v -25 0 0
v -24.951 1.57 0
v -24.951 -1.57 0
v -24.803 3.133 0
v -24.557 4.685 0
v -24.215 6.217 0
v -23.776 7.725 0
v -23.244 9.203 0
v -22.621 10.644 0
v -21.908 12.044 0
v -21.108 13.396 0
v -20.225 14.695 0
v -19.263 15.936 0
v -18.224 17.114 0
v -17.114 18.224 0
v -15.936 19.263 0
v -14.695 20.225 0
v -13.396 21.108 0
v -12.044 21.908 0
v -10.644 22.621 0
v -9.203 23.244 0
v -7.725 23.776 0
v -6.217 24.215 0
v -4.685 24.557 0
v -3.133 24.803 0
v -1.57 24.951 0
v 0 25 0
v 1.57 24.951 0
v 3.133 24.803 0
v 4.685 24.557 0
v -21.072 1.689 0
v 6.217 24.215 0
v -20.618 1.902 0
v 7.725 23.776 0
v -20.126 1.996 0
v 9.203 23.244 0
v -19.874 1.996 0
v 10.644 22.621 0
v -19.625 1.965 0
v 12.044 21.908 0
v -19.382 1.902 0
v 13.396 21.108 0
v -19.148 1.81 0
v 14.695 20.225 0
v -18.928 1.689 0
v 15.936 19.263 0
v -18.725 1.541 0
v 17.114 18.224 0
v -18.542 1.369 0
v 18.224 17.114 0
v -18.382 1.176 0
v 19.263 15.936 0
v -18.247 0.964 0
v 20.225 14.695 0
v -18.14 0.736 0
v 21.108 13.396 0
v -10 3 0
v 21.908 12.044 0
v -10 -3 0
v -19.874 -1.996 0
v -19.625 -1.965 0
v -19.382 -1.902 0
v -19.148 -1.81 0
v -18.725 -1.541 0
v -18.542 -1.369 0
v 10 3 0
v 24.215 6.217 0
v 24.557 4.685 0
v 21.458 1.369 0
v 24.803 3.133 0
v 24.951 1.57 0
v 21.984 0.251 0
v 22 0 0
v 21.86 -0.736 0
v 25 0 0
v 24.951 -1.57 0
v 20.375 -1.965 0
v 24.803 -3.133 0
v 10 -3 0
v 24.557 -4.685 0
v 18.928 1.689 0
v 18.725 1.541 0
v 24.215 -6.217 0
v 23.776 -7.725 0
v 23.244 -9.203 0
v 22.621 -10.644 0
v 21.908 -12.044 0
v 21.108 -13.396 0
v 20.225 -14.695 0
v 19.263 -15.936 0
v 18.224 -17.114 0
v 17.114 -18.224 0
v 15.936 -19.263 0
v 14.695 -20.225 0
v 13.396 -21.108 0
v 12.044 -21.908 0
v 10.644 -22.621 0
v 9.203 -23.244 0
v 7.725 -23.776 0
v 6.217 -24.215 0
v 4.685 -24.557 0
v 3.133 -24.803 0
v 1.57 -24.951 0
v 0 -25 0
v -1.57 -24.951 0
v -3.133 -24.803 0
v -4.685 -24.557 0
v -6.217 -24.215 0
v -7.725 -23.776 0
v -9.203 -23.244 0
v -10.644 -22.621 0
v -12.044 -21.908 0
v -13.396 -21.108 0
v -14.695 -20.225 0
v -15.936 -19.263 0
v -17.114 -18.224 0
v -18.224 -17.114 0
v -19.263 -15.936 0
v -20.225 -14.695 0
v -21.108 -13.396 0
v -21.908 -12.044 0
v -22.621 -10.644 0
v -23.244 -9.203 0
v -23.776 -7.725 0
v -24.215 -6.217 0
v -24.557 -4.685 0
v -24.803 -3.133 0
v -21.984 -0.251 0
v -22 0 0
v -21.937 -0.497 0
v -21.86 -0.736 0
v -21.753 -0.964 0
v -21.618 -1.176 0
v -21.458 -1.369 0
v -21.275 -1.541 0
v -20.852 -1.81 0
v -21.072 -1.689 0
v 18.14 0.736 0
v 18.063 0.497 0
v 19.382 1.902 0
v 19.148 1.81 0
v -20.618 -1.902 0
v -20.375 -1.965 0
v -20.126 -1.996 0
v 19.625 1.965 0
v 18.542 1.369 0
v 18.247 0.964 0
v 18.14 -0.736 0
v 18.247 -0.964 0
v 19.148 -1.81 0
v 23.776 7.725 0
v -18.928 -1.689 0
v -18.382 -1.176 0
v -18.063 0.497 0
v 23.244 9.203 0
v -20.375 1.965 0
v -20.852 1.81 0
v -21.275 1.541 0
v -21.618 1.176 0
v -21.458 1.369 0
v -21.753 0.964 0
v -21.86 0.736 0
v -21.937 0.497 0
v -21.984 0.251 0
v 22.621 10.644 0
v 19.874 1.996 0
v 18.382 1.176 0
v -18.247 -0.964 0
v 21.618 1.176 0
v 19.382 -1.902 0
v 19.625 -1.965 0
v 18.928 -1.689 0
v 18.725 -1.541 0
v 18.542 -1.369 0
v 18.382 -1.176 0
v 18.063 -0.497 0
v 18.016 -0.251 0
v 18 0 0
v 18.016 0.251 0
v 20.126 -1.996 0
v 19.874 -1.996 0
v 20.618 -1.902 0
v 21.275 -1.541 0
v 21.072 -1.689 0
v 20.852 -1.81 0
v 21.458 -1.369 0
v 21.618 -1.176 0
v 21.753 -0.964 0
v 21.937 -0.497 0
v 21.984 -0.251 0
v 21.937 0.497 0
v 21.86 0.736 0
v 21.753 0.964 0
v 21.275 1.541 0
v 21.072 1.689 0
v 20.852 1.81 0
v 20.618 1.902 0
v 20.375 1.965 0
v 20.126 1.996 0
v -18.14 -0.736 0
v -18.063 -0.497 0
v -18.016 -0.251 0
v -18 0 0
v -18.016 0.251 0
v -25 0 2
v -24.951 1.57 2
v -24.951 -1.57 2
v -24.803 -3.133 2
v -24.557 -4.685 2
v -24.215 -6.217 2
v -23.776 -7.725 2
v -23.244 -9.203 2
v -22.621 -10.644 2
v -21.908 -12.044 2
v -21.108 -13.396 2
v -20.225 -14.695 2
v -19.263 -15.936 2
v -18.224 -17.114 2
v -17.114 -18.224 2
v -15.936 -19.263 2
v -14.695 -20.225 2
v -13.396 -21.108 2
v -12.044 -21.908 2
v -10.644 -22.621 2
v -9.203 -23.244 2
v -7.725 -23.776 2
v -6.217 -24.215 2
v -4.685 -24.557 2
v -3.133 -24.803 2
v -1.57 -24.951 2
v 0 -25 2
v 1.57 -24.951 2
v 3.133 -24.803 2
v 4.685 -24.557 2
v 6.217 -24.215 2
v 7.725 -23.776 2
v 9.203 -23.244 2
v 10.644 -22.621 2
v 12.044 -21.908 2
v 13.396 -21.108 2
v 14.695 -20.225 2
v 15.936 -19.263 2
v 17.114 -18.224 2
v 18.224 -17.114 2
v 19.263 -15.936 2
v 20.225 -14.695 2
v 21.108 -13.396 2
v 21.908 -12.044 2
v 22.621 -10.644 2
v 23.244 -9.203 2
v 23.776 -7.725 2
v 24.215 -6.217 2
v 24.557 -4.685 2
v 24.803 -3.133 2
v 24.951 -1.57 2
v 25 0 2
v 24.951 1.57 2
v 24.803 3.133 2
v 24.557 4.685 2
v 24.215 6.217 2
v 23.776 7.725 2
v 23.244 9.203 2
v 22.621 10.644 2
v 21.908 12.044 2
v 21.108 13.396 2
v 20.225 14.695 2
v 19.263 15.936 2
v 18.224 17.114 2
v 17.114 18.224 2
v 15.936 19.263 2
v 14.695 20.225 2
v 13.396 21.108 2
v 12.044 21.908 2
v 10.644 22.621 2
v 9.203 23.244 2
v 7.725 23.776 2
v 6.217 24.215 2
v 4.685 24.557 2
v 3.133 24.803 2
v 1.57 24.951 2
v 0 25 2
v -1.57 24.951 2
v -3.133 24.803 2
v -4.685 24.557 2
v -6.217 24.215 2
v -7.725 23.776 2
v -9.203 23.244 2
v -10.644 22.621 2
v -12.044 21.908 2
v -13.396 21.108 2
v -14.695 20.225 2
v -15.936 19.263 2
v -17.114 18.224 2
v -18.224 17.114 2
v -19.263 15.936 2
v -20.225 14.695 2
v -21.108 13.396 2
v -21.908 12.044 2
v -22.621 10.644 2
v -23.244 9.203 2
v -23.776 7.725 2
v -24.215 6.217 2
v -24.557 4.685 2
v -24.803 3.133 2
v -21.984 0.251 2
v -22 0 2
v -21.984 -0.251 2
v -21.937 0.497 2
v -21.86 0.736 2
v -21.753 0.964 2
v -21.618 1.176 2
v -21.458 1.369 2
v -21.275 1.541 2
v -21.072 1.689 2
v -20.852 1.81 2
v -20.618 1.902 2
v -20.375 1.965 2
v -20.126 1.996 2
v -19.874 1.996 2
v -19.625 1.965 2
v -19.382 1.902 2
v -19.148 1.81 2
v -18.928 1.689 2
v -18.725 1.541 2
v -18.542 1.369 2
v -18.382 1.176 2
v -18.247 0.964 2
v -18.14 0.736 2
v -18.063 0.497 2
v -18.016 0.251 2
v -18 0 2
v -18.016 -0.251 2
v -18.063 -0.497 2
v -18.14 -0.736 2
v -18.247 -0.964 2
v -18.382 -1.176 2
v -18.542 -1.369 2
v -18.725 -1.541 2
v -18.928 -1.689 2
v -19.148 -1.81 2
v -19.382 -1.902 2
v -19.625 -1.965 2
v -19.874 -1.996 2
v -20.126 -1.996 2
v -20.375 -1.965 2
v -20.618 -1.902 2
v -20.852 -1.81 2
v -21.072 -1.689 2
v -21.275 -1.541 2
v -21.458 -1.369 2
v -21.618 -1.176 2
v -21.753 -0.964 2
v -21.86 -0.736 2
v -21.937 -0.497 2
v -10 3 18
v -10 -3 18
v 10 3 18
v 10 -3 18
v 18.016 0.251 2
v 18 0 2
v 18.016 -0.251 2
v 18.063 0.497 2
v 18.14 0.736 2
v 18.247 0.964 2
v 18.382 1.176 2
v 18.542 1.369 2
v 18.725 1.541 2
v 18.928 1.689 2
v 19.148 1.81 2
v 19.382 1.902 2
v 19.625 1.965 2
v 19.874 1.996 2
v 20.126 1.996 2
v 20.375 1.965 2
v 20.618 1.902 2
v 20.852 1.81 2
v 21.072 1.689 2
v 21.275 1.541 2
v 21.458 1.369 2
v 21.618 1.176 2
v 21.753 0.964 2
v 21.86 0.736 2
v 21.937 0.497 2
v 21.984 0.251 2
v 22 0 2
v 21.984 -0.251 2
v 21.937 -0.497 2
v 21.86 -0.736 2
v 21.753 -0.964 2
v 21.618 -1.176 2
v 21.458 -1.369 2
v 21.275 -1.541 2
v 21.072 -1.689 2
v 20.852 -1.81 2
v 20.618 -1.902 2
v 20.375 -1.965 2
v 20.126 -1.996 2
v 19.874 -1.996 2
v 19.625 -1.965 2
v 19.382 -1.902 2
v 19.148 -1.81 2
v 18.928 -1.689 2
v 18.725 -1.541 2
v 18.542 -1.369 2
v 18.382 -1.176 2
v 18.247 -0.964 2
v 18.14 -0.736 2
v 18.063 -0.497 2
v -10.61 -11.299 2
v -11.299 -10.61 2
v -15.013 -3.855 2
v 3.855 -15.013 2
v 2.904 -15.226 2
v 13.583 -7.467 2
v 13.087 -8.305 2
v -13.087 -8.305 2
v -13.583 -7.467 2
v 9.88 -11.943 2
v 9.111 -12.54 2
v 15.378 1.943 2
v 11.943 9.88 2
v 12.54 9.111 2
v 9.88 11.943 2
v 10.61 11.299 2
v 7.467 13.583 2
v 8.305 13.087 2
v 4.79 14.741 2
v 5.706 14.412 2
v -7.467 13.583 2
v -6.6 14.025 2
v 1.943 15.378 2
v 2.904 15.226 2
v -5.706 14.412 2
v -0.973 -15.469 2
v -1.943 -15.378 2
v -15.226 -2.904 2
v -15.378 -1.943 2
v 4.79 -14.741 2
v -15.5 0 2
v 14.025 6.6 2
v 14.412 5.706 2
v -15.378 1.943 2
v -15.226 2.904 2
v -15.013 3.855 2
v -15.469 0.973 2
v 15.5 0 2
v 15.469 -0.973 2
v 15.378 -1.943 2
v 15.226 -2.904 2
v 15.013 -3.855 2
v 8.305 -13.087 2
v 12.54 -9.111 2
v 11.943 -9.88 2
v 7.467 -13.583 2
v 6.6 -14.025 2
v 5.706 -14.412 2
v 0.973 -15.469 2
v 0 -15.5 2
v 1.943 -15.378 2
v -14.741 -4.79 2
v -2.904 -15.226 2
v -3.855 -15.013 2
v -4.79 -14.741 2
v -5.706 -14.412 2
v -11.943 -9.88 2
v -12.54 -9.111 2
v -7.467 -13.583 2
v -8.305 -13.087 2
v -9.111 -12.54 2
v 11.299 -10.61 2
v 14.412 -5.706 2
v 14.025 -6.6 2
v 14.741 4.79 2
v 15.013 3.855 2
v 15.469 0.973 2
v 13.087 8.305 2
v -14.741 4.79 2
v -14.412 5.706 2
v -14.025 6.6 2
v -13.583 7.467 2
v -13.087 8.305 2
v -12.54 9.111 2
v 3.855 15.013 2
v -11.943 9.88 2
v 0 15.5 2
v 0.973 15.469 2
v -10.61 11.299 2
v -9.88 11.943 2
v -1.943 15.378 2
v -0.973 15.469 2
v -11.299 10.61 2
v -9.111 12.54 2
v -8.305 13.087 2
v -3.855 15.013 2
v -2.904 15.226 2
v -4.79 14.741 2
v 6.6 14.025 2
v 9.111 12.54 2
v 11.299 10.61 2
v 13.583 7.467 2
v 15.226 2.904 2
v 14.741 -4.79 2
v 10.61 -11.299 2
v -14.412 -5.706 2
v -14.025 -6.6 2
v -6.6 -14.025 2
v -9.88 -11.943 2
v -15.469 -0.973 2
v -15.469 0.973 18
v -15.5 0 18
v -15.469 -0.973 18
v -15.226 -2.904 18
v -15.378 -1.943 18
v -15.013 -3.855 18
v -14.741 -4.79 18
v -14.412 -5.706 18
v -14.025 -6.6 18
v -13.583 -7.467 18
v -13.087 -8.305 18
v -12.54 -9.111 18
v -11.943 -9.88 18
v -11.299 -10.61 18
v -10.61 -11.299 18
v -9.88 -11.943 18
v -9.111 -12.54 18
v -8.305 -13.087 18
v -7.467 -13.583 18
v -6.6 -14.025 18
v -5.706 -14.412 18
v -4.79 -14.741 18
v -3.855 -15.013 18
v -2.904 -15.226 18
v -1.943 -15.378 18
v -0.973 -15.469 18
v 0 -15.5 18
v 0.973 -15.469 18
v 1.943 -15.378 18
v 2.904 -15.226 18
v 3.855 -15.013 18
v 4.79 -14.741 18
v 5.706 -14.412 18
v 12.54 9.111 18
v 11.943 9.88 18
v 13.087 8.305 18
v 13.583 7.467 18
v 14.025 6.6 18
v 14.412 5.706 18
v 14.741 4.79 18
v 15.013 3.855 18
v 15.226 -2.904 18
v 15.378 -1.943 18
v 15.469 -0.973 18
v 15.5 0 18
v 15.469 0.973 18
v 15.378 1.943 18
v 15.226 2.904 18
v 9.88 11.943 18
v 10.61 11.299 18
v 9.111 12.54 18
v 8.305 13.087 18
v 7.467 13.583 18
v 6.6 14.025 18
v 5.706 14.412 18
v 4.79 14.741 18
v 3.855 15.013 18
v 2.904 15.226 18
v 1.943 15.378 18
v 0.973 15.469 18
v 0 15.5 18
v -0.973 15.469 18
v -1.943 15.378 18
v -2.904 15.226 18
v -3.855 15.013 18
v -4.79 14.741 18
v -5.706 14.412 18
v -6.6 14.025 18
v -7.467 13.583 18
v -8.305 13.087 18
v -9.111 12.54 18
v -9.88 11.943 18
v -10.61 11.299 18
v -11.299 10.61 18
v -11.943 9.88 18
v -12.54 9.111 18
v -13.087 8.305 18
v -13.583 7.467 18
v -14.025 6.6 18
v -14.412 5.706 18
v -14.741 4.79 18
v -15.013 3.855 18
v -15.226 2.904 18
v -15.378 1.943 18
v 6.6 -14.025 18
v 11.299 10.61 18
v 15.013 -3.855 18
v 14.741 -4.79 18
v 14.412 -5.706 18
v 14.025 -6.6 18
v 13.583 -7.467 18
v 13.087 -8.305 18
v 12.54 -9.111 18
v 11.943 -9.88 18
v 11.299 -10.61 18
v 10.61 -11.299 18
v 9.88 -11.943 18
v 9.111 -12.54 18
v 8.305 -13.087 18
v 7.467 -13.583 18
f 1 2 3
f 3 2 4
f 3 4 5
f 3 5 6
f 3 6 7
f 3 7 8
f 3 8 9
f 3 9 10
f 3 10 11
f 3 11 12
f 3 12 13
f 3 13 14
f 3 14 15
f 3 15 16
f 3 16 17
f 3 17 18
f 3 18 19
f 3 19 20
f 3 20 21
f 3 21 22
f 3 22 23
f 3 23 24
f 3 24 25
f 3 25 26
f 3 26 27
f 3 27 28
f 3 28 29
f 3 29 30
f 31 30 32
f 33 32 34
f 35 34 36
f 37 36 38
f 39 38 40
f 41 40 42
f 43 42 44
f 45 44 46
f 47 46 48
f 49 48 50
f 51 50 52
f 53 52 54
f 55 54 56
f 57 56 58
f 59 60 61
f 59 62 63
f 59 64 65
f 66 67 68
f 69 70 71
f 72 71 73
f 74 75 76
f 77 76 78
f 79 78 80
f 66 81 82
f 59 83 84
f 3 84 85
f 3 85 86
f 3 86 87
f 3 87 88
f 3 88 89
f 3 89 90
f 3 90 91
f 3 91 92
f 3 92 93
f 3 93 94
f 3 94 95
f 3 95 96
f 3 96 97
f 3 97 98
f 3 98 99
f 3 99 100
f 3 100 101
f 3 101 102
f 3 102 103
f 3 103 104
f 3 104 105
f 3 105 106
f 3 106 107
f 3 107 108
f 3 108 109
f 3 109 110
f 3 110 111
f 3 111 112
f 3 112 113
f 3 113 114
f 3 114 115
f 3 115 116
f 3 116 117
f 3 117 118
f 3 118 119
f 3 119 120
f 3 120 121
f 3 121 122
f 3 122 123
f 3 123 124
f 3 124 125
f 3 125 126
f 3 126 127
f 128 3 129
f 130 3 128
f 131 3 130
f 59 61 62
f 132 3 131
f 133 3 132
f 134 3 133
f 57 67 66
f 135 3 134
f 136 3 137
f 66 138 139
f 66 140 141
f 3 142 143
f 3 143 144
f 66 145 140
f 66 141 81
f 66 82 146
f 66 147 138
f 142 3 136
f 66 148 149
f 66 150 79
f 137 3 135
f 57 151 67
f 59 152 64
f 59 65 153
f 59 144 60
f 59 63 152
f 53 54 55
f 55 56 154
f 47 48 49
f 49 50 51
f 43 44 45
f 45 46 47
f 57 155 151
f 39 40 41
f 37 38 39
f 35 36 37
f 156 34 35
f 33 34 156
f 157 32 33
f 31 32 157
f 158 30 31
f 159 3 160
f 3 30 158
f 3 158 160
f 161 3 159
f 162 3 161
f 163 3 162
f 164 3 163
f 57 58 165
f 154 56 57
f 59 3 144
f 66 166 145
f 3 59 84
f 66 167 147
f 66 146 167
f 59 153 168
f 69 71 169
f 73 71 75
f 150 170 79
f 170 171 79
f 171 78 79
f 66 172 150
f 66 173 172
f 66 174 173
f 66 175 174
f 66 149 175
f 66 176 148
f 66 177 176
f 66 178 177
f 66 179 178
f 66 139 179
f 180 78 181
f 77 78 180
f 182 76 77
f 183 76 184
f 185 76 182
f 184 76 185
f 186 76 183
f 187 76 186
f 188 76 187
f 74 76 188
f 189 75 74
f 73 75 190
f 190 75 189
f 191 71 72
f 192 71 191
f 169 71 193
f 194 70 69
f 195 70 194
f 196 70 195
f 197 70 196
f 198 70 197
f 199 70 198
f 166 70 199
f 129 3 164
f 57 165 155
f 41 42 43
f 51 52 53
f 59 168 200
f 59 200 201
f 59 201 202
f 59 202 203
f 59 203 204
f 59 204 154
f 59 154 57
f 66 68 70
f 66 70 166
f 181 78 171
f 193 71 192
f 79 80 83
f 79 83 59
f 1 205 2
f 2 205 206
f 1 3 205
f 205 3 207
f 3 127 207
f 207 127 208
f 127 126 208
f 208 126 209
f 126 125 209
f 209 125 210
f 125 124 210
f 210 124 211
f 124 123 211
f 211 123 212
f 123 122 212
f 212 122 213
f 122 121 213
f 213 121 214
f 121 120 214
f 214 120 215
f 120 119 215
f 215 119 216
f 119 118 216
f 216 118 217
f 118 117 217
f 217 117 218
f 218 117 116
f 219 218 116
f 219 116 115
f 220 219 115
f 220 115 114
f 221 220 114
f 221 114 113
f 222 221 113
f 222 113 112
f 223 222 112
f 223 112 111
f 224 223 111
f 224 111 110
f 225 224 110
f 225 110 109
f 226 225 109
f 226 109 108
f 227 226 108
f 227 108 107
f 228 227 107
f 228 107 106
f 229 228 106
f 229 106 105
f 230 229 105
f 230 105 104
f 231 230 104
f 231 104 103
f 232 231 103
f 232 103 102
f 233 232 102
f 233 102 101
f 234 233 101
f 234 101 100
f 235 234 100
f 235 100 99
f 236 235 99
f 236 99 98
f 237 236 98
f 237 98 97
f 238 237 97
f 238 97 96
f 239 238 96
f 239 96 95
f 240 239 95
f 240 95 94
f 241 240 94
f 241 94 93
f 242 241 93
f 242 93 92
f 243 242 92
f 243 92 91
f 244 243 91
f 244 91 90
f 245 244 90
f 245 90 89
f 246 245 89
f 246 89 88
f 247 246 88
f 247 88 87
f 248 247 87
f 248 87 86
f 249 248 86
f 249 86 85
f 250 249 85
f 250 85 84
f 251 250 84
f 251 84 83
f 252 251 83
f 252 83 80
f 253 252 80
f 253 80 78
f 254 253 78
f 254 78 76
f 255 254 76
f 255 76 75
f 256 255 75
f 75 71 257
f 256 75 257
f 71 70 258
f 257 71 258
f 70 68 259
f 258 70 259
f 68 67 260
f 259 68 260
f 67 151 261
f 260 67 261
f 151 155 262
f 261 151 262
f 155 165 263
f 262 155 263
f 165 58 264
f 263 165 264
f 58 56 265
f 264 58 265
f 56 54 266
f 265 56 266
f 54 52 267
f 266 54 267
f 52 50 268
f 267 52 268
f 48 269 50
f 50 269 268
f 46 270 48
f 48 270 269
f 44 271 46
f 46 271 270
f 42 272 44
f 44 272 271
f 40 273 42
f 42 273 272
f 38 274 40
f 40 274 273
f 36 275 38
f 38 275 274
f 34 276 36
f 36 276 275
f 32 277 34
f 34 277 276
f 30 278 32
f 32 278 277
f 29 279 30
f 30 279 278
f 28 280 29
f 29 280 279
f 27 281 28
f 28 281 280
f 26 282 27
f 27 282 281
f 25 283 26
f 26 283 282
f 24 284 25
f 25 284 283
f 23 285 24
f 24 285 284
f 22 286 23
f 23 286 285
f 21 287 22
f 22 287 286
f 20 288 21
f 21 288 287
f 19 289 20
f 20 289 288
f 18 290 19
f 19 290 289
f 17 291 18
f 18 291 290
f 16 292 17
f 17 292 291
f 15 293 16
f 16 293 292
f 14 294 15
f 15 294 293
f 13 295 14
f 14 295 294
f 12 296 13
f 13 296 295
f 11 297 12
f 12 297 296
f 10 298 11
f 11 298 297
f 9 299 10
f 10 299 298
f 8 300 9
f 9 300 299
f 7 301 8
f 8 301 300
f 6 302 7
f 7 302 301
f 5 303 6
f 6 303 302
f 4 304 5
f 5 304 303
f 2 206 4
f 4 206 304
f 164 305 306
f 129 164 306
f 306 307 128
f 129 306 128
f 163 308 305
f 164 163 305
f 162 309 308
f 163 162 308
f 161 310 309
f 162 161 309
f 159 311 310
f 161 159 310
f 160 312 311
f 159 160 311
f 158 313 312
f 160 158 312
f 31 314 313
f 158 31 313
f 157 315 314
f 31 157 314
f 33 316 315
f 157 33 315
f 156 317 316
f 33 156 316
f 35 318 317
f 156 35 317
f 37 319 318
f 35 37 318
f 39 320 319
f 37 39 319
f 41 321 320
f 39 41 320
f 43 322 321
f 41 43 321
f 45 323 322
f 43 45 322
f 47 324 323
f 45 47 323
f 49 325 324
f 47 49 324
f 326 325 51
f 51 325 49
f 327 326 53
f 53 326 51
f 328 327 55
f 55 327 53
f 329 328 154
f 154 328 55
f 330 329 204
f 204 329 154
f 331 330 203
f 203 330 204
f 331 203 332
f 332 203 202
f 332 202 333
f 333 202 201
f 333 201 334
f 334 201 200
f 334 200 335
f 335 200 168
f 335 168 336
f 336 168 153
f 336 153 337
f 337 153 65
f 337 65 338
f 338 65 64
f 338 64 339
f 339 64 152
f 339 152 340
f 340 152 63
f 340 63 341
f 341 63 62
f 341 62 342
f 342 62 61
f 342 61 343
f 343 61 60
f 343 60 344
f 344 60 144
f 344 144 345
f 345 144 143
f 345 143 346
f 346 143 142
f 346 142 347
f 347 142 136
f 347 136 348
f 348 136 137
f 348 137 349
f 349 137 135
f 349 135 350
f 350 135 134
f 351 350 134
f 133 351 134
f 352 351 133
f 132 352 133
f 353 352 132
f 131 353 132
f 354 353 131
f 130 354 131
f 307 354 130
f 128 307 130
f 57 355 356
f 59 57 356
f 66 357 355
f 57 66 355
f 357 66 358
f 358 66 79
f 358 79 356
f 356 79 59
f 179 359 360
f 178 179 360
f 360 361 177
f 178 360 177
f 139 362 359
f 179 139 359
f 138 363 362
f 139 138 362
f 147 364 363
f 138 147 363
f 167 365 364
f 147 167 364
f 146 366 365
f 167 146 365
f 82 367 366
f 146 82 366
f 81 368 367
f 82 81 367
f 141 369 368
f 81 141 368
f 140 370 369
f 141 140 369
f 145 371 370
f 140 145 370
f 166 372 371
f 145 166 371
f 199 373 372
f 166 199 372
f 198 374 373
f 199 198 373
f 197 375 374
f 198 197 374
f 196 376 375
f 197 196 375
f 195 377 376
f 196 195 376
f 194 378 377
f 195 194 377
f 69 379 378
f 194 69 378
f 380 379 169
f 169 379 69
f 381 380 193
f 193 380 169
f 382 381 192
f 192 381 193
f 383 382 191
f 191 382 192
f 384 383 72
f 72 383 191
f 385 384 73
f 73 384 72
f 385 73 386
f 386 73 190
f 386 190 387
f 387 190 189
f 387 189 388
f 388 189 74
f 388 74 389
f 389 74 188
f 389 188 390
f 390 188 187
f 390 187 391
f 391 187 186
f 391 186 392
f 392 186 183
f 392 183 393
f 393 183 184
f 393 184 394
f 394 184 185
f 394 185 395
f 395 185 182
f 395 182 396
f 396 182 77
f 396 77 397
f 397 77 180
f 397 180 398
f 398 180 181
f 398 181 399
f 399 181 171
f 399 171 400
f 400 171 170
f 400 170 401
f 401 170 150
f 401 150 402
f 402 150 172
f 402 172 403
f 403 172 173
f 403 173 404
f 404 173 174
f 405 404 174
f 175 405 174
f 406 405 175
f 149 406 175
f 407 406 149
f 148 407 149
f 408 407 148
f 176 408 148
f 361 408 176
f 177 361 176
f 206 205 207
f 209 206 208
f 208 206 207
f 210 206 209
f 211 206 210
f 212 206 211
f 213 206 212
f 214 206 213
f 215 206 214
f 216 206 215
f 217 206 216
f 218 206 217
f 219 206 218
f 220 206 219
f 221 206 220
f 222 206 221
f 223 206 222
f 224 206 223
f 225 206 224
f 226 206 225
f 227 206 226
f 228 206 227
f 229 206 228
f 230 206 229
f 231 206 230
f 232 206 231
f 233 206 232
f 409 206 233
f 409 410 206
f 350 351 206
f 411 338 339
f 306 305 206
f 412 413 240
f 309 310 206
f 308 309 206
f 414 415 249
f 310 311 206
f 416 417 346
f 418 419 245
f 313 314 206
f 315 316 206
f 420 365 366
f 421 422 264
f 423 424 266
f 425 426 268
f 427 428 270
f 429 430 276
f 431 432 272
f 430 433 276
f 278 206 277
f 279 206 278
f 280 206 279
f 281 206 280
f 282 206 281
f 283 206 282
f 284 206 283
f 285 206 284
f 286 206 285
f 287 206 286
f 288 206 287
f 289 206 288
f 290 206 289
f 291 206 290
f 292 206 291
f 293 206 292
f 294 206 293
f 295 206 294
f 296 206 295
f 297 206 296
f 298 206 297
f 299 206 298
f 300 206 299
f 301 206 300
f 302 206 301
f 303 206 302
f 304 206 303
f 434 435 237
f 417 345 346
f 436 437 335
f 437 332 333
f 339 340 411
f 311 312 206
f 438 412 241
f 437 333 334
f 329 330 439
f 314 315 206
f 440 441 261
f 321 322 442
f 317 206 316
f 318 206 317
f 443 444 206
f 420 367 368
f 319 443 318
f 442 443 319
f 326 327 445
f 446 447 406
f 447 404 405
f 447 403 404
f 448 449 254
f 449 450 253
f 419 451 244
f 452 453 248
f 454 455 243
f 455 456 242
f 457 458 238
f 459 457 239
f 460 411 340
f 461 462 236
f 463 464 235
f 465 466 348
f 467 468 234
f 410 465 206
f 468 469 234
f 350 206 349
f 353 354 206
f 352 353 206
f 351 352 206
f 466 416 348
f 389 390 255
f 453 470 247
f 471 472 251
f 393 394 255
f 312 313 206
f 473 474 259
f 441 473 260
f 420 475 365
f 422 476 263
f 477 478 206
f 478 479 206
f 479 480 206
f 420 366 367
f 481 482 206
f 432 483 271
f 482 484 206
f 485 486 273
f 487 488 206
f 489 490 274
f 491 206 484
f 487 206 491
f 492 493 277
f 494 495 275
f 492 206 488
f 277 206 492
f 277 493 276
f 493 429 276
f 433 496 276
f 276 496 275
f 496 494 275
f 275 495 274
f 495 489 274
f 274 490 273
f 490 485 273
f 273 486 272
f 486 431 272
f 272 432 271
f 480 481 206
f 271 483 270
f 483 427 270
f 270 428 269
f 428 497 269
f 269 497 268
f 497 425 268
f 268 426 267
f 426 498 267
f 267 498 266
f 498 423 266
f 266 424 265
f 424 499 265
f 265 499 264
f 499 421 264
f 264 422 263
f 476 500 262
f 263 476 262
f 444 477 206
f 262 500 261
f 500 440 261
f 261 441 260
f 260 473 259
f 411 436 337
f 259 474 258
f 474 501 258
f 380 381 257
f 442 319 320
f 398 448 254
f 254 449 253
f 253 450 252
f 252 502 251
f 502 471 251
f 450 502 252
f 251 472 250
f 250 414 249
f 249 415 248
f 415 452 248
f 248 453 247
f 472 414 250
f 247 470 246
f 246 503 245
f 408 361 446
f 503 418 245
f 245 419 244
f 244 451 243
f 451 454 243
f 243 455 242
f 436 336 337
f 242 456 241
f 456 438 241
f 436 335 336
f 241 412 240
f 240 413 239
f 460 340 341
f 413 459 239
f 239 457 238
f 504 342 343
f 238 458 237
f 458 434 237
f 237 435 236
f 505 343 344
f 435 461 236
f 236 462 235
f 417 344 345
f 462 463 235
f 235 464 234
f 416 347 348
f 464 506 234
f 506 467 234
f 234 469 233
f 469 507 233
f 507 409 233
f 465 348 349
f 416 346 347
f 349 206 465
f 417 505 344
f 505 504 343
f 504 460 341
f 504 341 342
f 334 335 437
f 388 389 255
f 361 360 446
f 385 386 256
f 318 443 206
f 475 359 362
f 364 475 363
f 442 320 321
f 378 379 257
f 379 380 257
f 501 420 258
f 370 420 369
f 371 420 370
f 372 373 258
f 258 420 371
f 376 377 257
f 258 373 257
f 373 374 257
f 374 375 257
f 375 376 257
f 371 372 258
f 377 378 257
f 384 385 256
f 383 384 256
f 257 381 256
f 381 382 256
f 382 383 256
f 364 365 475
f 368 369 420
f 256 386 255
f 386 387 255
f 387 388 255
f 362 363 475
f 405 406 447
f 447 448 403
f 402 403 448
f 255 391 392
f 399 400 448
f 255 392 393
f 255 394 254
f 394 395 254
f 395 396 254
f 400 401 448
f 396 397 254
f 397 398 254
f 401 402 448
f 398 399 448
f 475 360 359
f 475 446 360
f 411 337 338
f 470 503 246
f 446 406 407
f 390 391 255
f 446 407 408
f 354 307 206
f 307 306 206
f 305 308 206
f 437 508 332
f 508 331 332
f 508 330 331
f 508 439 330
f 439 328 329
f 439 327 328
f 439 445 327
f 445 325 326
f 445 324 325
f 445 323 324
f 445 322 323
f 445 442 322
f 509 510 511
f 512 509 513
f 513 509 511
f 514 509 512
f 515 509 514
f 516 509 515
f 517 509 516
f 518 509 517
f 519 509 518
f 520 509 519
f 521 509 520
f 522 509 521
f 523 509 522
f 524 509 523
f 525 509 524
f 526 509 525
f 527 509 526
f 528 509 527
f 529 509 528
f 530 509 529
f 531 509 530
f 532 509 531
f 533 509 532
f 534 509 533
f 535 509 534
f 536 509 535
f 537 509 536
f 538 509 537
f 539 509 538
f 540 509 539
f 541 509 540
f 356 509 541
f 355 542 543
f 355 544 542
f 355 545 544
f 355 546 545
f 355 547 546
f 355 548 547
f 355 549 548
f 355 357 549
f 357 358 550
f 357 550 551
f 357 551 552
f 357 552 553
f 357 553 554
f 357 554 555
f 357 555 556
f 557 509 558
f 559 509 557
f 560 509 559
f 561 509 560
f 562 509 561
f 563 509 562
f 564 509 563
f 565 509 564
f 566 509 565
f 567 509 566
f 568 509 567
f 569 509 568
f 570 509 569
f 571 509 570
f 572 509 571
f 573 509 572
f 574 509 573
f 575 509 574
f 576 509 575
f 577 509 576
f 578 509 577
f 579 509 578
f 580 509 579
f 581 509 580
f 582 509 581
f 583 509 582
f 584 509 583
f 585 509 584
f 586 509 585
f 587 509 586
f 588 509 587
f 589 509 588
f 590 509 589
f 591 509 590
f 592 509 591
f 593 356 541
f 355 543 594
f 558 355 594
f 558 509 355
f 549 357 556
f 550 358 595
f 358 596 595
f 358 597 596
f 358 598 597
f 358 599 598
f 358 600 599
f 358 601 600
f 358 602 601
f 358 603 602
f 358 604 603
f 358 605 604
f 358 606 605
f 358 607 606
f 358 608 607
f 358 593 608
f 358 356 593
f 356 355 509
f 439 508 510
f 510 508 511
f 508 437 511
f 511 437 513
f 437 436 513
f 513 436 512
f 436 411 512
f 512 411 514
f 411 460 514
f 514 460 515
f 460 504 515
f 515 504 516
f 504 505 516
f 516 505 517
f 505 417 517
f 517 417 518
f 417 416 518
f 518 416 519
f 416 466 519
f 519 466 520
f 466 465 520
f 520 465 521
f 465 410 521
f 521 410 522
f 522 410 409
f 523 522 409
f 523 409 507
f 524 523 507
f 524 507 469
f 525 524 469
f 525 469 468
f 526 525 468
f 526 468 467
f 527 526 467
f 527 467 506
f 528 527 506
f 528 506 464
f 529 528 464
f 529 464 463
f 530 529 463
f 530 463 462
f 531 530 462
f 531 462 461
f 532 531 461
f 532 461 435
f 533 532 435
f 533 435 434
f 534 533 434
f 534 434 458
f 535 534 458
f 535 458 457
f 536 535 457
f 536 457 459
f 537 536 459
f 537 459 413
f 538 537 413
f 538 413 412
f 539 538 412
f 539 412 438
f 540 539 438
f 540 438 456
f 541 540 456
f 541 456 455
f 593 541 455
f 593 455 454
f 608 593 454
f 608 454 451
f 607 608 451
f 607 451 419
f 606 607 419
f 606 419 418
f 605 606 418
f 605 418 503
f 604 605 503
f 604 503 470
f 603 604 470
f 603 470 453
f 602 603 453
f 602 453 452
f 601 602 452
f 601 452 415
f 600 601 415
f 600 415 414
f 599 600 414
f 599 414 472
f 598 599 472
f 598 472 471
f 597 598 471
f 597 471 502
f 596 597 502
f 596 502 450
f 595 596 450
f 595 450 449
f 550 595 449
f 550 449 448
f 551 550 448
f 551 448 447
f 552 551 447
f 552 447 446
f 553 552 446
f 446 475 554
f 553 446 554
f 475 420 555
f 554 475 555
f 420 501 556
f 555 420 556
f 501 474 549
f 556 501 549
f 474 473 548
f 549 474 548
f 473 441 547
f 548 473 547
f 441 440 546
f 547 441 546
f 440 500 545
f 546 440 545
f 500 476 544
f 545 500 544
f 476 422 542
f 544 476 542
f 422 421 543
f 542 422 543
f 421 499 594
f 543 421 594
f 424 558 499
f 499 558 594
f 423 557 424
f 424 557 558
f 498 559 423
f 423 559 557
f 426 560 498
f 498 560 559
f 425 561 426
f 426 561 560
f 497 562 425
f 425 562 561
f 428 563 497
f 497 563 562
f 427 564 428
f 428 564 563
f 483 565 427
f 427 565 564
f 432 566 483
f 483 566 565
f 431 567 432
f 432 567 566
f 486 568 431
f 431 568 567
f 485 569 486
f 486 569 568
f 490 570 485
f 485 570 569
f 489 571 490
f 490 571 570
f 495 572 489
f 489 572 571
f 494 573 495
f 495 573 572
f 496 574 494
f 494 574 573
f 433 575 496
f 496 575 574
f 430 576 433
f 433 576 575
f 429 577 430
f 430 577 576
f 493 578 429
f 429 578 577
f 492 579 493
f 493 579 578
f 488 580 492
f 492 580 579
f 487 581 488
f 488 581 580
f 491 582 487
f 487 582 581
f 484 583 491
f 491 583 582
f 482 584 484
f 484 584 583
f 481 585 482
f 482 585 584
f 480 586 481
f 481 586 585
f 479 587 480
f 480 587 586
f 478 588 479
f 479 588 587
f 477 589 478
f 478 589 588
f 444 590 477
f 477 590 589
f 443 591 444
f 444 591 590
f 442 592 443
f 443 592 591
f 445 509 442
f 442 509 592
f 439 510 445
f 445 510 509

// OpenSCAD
r_ext=15.5;
r_col=25;
x_end=20;
y_end=6;
r_m3=2;


module endstop_z(){
	difference(){
		union(){
		cylinder(h = 18, r=15.5, $fn=100);
		cylinder(h = 2, r=r_col, $fn=100);
		}

		//extrusion générale
		translate([-x_end/2,-y_end/2,-5]){cube([x_end,y_end,30]);}

		//trous de fixation
		translate([-r_col+5,0,-5]){cylinder(h = 15, r = r_m3, $fn=50);}
		translate([r_col-5,0,-5]){cylinder(h = 15, r = r_m3, $fn=50);}

		

	}
}

endstop_z();
